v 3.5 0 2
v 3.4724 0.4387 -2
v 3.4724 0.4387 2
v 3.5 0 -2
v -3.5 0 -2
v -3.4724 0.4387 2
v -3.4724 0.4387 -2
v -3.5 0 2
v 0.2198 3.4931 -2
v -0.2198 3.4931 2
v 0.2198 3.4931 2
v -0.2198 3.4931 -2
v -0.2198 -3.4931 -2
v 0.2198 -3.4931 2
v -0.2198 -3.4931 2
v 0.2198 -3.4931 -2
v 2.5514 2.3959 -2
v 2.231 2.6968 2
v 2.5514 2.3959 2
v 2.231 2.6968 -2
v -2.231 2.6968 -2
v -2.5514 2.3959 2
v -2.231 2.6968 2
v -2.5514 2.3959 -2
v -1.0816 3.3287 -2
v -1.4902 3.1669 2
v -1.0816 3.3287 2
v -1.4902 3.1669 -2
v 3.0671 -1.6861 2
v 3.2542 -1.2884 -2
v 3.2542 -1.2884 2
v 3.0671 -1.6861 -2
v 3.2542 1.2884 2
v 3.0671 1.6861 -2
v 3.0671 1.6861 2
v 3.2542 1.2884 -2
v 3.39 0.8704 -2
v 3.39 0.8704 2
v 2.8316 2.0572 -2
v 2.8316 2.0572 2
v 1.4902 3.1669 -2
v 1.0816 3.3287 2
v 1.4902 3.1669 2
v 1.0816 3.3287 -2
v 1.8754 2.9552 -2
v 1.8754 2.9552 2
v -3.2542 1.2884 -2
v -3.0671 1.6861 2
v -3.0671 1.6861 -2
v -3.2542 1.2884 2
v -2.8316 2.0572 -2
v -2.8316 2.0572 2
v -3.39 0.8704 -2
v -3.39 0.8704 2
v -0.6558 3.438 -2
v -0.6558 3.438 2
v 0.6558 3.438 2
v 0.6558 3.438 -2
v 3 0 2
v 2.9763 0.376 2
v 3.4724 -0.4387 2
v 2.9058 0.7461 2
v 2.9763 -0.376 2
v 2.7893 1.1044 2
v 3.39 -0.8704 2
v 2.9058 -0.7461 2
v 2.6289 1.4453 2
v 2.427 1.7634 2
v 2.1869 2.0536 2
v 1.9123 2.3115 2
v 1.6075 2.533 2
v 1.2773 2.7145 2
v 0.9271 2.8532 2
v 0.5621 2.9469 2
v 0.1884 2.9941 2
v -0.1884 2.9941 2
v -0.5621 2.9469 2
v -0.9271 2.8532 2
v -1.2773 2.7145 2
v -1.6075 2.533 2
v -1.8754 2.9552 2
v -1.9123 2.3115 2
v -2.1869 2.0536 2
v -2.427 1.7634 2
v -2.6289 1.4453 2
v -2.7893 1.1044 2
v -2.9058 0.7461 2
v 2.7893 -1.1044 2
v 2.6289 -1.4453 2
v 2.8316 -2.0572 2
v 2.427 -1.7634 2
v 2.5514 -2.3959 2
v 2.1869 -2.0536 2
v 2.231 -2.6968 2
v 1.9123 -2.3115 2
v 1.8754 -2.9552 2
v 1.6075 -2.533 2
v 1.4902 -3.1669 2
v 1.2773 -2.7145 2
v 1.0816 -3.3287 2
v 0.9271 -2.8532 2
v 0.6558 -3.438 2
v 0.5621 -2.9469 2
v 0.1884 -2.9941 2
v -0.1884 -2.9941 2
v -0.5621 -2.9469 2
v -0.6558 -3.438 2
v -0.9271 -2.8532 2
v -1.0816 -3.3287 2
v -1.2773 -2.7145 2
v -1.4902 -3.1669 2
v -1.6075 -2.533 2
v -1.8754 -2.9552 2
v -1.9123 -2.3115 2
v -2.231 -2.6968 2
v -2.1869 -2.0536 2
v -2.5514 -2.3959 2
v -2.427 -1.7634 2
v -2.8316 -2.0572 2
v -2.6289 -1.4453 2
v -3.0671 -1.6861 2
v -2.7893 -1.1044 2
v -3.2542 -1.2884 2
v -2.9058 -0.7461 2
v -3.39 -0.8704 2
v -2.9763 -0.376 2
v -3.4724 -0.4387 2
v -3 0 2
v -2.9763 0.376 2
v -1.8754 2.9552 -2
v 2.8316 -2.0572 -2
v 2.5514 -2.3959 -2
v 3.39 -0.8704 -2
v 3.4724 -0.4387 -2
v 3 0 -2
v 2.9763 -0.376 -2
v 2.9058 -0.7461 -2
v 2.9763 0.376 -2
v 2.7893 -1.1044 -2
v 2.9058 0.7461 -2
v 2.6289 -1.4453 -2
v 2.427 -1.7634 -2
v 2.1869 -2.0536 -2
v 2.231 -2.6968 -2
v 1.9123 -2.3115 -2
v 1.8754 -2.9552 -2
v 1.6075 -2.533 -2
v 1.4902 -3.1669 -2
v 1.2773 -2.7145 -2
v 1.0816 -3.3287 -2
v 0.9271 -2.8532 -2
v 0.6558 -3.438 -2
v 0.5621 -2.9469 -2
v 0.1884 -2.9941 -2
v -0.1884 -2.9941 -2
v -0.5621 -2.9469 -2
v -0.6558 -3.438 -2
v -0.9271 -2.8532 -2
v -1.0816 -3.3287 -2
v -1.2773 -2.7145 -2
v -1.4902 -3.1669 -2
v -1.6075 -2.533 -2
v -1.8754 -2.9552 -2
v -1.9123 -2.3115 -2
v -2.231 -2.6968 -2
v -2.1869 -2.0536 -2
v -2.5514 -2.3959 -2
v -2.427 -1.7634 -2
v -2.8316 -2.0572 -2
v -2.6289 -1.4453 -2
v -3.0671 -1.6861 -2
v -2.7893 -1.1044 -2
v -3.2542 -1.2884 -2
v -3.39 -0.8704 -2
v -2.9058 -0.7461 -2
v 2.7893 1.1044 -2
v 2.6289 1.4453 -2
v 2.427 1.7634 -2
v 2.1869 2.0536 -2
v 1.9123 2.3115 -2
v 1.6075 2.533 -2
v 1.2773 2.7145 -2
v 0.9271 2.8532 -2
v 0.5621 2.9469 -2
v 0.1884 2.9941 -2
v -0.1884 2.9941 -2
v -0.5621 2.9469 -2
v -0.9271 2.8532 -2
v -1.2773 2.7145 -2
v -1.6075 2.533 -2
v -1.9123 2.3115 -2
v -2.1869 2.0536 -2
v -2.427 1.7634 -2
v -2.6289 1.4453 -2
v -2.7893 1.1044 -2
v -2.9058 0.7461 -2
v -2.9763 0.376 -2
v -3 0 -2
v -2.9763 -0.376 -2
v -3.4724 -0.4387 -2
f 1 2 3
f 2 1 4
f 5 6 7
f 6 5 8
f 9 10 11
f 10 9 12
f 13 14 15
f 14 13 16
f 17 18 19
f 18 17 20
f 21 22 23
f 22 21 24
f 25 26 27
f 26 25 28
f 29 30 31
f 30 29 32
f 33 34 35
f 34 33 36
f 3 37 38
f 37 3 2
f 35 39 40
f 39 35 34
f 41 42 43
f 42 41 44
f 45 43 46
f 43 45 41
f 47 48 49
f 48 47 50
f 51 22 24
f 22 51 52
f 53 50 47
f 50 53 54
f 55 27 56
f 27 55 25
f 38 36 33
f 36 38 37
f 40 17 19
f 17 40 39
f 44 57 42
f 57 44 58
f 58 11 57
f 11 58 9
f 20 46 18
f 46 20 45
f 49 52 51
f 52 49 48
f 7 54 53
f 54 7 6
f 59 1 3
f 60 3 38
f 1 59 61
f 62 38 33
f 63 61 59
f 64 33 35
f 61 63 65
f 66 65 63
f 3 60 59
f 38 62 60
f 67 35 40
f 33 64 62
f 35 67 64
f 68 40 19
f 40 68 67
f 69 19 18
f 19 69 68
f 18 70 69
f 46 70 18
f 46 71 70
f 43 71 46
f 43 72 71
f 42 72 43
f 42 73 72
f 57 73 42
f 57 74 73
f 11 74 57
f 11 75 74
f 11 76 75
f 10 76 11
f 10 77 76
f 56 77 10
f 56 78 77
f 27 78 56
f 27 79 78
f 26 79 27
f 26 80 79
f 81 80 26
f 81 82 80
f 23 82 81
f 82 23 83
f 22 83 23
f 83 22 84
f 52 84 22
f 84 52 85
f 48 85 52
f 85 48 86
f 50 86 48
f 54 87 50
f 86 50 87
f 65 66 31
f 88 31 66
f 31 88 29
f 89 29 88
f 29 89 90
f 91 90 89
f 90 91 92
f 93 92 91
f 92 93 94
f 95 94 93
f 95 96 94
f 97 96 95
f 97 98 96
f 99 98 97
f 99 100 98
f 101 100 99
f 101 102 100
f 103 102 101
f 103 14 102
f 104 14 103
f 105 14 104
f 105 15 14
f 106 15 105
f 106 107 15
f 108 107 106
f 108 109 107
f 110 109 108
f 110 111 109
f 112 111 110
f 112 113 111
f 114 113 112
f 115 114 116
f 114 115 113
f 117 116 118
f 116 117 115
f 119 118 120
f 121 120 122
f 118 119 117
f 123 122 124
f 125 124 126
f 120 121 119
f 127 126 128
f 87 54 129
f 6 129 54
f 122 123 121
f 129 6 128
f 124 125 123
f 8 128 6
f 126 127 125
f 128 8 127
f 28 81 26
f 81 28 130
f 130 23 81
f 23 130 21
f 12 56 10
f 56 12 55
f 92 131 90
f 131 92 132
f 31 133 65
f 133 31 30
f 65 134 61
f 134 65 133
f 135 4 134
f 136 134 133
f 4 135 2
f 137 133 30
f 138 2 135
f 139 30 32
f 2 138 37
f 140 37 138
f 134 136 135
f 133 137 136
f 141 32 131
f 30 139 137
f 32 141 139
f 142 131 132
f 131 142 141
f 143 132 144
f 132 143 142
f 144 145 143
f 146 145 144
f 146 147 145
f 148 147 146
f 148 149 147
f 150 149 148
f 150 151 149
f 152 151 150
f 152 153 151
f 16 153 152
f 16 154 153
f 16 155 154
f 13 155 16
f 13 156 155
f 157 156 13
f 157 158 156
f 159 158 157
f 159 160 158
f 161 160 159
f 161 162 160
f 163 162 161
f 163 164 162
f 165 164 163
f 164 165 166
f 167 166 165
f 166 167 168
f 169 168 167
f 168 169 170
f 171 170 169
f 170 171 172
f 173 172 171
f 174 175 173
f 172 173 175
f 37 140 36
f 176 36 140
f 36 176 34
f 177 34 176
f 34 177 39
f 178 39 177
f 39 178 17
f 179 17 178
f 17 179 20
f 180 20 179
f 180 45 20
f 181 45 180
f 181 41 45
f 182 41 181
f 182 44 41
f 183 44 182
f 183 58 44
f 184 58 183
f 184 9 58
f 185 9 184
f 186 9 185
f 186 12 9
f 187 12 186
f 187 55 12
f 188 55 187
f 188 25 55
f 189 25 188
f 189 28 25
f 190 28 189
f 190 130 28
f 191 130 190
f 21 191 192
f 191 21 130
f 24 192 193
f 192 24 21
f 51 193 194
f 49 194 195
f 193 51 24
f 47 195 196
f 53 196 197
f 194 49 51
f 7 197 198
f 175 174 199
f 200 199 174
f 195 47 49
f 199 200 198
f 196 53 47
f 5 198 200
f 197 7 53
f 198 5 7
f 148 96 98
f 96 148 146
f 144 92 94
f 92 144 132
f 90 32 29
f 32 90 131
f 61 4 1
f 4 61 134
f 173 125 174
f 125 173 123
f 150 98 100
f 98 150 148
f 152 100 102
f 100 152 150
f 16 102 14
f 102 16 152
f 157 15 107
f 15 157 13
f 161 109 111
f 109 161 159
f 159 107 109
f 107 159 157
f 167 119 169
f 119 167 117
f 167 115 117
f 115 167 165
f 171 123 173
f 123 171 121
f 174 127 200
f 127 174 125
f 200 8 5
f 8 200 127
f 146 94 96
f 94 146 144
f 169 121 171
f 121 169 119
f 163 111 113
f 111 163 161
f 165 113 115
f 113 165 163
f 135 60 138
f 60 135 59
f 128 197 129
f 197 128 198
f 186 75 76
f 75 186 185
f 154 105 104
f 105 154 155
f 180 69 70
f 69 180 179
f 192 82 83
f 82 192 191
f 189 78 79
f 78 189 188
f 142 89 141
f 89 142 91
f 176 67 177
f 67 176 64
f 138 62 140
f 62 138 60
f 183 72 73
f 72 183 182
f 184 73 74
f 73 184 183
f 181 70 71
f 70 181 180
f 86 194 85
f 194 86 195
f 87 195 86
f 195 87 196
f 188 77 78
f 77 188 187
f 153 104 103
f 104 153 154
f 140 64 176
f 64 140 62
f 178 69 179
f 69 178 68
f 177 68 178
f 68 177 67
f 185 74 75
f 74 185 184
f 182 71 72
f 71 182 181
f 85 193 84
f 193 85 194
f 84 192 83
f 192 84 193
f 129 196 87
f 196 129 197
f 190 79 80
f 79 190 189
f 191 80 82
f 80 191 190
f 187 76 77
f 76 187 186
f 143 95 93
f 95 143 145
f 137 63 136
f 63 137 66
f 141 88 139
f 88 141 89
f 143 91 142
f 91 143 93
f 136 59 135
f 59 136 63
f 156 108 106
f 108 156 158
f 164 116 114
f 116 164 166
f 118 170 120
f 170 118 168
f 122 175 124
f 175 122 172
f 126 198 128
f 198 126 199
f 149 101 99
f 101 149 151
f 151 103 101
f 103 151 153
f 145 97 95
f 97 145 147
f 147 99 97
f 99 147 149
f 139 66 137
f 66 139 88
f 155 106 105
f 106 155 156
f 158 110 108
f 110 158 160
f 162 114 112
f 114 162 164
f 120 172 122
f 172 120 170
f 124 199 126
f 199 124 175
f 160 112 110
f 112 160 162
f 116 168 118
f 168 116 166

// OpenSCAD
$fn = 50;


difference() {
	union() {
		translate(v = [0, 0, -2.0000000000]) {
			cylinder(h = 4, r = 3.5000000000);
		}
	}
	union() {
		translate(v = [0, 0, -100.0000000000]) {
			cylinder(h = 200, r = 3);
		}
	}
}
